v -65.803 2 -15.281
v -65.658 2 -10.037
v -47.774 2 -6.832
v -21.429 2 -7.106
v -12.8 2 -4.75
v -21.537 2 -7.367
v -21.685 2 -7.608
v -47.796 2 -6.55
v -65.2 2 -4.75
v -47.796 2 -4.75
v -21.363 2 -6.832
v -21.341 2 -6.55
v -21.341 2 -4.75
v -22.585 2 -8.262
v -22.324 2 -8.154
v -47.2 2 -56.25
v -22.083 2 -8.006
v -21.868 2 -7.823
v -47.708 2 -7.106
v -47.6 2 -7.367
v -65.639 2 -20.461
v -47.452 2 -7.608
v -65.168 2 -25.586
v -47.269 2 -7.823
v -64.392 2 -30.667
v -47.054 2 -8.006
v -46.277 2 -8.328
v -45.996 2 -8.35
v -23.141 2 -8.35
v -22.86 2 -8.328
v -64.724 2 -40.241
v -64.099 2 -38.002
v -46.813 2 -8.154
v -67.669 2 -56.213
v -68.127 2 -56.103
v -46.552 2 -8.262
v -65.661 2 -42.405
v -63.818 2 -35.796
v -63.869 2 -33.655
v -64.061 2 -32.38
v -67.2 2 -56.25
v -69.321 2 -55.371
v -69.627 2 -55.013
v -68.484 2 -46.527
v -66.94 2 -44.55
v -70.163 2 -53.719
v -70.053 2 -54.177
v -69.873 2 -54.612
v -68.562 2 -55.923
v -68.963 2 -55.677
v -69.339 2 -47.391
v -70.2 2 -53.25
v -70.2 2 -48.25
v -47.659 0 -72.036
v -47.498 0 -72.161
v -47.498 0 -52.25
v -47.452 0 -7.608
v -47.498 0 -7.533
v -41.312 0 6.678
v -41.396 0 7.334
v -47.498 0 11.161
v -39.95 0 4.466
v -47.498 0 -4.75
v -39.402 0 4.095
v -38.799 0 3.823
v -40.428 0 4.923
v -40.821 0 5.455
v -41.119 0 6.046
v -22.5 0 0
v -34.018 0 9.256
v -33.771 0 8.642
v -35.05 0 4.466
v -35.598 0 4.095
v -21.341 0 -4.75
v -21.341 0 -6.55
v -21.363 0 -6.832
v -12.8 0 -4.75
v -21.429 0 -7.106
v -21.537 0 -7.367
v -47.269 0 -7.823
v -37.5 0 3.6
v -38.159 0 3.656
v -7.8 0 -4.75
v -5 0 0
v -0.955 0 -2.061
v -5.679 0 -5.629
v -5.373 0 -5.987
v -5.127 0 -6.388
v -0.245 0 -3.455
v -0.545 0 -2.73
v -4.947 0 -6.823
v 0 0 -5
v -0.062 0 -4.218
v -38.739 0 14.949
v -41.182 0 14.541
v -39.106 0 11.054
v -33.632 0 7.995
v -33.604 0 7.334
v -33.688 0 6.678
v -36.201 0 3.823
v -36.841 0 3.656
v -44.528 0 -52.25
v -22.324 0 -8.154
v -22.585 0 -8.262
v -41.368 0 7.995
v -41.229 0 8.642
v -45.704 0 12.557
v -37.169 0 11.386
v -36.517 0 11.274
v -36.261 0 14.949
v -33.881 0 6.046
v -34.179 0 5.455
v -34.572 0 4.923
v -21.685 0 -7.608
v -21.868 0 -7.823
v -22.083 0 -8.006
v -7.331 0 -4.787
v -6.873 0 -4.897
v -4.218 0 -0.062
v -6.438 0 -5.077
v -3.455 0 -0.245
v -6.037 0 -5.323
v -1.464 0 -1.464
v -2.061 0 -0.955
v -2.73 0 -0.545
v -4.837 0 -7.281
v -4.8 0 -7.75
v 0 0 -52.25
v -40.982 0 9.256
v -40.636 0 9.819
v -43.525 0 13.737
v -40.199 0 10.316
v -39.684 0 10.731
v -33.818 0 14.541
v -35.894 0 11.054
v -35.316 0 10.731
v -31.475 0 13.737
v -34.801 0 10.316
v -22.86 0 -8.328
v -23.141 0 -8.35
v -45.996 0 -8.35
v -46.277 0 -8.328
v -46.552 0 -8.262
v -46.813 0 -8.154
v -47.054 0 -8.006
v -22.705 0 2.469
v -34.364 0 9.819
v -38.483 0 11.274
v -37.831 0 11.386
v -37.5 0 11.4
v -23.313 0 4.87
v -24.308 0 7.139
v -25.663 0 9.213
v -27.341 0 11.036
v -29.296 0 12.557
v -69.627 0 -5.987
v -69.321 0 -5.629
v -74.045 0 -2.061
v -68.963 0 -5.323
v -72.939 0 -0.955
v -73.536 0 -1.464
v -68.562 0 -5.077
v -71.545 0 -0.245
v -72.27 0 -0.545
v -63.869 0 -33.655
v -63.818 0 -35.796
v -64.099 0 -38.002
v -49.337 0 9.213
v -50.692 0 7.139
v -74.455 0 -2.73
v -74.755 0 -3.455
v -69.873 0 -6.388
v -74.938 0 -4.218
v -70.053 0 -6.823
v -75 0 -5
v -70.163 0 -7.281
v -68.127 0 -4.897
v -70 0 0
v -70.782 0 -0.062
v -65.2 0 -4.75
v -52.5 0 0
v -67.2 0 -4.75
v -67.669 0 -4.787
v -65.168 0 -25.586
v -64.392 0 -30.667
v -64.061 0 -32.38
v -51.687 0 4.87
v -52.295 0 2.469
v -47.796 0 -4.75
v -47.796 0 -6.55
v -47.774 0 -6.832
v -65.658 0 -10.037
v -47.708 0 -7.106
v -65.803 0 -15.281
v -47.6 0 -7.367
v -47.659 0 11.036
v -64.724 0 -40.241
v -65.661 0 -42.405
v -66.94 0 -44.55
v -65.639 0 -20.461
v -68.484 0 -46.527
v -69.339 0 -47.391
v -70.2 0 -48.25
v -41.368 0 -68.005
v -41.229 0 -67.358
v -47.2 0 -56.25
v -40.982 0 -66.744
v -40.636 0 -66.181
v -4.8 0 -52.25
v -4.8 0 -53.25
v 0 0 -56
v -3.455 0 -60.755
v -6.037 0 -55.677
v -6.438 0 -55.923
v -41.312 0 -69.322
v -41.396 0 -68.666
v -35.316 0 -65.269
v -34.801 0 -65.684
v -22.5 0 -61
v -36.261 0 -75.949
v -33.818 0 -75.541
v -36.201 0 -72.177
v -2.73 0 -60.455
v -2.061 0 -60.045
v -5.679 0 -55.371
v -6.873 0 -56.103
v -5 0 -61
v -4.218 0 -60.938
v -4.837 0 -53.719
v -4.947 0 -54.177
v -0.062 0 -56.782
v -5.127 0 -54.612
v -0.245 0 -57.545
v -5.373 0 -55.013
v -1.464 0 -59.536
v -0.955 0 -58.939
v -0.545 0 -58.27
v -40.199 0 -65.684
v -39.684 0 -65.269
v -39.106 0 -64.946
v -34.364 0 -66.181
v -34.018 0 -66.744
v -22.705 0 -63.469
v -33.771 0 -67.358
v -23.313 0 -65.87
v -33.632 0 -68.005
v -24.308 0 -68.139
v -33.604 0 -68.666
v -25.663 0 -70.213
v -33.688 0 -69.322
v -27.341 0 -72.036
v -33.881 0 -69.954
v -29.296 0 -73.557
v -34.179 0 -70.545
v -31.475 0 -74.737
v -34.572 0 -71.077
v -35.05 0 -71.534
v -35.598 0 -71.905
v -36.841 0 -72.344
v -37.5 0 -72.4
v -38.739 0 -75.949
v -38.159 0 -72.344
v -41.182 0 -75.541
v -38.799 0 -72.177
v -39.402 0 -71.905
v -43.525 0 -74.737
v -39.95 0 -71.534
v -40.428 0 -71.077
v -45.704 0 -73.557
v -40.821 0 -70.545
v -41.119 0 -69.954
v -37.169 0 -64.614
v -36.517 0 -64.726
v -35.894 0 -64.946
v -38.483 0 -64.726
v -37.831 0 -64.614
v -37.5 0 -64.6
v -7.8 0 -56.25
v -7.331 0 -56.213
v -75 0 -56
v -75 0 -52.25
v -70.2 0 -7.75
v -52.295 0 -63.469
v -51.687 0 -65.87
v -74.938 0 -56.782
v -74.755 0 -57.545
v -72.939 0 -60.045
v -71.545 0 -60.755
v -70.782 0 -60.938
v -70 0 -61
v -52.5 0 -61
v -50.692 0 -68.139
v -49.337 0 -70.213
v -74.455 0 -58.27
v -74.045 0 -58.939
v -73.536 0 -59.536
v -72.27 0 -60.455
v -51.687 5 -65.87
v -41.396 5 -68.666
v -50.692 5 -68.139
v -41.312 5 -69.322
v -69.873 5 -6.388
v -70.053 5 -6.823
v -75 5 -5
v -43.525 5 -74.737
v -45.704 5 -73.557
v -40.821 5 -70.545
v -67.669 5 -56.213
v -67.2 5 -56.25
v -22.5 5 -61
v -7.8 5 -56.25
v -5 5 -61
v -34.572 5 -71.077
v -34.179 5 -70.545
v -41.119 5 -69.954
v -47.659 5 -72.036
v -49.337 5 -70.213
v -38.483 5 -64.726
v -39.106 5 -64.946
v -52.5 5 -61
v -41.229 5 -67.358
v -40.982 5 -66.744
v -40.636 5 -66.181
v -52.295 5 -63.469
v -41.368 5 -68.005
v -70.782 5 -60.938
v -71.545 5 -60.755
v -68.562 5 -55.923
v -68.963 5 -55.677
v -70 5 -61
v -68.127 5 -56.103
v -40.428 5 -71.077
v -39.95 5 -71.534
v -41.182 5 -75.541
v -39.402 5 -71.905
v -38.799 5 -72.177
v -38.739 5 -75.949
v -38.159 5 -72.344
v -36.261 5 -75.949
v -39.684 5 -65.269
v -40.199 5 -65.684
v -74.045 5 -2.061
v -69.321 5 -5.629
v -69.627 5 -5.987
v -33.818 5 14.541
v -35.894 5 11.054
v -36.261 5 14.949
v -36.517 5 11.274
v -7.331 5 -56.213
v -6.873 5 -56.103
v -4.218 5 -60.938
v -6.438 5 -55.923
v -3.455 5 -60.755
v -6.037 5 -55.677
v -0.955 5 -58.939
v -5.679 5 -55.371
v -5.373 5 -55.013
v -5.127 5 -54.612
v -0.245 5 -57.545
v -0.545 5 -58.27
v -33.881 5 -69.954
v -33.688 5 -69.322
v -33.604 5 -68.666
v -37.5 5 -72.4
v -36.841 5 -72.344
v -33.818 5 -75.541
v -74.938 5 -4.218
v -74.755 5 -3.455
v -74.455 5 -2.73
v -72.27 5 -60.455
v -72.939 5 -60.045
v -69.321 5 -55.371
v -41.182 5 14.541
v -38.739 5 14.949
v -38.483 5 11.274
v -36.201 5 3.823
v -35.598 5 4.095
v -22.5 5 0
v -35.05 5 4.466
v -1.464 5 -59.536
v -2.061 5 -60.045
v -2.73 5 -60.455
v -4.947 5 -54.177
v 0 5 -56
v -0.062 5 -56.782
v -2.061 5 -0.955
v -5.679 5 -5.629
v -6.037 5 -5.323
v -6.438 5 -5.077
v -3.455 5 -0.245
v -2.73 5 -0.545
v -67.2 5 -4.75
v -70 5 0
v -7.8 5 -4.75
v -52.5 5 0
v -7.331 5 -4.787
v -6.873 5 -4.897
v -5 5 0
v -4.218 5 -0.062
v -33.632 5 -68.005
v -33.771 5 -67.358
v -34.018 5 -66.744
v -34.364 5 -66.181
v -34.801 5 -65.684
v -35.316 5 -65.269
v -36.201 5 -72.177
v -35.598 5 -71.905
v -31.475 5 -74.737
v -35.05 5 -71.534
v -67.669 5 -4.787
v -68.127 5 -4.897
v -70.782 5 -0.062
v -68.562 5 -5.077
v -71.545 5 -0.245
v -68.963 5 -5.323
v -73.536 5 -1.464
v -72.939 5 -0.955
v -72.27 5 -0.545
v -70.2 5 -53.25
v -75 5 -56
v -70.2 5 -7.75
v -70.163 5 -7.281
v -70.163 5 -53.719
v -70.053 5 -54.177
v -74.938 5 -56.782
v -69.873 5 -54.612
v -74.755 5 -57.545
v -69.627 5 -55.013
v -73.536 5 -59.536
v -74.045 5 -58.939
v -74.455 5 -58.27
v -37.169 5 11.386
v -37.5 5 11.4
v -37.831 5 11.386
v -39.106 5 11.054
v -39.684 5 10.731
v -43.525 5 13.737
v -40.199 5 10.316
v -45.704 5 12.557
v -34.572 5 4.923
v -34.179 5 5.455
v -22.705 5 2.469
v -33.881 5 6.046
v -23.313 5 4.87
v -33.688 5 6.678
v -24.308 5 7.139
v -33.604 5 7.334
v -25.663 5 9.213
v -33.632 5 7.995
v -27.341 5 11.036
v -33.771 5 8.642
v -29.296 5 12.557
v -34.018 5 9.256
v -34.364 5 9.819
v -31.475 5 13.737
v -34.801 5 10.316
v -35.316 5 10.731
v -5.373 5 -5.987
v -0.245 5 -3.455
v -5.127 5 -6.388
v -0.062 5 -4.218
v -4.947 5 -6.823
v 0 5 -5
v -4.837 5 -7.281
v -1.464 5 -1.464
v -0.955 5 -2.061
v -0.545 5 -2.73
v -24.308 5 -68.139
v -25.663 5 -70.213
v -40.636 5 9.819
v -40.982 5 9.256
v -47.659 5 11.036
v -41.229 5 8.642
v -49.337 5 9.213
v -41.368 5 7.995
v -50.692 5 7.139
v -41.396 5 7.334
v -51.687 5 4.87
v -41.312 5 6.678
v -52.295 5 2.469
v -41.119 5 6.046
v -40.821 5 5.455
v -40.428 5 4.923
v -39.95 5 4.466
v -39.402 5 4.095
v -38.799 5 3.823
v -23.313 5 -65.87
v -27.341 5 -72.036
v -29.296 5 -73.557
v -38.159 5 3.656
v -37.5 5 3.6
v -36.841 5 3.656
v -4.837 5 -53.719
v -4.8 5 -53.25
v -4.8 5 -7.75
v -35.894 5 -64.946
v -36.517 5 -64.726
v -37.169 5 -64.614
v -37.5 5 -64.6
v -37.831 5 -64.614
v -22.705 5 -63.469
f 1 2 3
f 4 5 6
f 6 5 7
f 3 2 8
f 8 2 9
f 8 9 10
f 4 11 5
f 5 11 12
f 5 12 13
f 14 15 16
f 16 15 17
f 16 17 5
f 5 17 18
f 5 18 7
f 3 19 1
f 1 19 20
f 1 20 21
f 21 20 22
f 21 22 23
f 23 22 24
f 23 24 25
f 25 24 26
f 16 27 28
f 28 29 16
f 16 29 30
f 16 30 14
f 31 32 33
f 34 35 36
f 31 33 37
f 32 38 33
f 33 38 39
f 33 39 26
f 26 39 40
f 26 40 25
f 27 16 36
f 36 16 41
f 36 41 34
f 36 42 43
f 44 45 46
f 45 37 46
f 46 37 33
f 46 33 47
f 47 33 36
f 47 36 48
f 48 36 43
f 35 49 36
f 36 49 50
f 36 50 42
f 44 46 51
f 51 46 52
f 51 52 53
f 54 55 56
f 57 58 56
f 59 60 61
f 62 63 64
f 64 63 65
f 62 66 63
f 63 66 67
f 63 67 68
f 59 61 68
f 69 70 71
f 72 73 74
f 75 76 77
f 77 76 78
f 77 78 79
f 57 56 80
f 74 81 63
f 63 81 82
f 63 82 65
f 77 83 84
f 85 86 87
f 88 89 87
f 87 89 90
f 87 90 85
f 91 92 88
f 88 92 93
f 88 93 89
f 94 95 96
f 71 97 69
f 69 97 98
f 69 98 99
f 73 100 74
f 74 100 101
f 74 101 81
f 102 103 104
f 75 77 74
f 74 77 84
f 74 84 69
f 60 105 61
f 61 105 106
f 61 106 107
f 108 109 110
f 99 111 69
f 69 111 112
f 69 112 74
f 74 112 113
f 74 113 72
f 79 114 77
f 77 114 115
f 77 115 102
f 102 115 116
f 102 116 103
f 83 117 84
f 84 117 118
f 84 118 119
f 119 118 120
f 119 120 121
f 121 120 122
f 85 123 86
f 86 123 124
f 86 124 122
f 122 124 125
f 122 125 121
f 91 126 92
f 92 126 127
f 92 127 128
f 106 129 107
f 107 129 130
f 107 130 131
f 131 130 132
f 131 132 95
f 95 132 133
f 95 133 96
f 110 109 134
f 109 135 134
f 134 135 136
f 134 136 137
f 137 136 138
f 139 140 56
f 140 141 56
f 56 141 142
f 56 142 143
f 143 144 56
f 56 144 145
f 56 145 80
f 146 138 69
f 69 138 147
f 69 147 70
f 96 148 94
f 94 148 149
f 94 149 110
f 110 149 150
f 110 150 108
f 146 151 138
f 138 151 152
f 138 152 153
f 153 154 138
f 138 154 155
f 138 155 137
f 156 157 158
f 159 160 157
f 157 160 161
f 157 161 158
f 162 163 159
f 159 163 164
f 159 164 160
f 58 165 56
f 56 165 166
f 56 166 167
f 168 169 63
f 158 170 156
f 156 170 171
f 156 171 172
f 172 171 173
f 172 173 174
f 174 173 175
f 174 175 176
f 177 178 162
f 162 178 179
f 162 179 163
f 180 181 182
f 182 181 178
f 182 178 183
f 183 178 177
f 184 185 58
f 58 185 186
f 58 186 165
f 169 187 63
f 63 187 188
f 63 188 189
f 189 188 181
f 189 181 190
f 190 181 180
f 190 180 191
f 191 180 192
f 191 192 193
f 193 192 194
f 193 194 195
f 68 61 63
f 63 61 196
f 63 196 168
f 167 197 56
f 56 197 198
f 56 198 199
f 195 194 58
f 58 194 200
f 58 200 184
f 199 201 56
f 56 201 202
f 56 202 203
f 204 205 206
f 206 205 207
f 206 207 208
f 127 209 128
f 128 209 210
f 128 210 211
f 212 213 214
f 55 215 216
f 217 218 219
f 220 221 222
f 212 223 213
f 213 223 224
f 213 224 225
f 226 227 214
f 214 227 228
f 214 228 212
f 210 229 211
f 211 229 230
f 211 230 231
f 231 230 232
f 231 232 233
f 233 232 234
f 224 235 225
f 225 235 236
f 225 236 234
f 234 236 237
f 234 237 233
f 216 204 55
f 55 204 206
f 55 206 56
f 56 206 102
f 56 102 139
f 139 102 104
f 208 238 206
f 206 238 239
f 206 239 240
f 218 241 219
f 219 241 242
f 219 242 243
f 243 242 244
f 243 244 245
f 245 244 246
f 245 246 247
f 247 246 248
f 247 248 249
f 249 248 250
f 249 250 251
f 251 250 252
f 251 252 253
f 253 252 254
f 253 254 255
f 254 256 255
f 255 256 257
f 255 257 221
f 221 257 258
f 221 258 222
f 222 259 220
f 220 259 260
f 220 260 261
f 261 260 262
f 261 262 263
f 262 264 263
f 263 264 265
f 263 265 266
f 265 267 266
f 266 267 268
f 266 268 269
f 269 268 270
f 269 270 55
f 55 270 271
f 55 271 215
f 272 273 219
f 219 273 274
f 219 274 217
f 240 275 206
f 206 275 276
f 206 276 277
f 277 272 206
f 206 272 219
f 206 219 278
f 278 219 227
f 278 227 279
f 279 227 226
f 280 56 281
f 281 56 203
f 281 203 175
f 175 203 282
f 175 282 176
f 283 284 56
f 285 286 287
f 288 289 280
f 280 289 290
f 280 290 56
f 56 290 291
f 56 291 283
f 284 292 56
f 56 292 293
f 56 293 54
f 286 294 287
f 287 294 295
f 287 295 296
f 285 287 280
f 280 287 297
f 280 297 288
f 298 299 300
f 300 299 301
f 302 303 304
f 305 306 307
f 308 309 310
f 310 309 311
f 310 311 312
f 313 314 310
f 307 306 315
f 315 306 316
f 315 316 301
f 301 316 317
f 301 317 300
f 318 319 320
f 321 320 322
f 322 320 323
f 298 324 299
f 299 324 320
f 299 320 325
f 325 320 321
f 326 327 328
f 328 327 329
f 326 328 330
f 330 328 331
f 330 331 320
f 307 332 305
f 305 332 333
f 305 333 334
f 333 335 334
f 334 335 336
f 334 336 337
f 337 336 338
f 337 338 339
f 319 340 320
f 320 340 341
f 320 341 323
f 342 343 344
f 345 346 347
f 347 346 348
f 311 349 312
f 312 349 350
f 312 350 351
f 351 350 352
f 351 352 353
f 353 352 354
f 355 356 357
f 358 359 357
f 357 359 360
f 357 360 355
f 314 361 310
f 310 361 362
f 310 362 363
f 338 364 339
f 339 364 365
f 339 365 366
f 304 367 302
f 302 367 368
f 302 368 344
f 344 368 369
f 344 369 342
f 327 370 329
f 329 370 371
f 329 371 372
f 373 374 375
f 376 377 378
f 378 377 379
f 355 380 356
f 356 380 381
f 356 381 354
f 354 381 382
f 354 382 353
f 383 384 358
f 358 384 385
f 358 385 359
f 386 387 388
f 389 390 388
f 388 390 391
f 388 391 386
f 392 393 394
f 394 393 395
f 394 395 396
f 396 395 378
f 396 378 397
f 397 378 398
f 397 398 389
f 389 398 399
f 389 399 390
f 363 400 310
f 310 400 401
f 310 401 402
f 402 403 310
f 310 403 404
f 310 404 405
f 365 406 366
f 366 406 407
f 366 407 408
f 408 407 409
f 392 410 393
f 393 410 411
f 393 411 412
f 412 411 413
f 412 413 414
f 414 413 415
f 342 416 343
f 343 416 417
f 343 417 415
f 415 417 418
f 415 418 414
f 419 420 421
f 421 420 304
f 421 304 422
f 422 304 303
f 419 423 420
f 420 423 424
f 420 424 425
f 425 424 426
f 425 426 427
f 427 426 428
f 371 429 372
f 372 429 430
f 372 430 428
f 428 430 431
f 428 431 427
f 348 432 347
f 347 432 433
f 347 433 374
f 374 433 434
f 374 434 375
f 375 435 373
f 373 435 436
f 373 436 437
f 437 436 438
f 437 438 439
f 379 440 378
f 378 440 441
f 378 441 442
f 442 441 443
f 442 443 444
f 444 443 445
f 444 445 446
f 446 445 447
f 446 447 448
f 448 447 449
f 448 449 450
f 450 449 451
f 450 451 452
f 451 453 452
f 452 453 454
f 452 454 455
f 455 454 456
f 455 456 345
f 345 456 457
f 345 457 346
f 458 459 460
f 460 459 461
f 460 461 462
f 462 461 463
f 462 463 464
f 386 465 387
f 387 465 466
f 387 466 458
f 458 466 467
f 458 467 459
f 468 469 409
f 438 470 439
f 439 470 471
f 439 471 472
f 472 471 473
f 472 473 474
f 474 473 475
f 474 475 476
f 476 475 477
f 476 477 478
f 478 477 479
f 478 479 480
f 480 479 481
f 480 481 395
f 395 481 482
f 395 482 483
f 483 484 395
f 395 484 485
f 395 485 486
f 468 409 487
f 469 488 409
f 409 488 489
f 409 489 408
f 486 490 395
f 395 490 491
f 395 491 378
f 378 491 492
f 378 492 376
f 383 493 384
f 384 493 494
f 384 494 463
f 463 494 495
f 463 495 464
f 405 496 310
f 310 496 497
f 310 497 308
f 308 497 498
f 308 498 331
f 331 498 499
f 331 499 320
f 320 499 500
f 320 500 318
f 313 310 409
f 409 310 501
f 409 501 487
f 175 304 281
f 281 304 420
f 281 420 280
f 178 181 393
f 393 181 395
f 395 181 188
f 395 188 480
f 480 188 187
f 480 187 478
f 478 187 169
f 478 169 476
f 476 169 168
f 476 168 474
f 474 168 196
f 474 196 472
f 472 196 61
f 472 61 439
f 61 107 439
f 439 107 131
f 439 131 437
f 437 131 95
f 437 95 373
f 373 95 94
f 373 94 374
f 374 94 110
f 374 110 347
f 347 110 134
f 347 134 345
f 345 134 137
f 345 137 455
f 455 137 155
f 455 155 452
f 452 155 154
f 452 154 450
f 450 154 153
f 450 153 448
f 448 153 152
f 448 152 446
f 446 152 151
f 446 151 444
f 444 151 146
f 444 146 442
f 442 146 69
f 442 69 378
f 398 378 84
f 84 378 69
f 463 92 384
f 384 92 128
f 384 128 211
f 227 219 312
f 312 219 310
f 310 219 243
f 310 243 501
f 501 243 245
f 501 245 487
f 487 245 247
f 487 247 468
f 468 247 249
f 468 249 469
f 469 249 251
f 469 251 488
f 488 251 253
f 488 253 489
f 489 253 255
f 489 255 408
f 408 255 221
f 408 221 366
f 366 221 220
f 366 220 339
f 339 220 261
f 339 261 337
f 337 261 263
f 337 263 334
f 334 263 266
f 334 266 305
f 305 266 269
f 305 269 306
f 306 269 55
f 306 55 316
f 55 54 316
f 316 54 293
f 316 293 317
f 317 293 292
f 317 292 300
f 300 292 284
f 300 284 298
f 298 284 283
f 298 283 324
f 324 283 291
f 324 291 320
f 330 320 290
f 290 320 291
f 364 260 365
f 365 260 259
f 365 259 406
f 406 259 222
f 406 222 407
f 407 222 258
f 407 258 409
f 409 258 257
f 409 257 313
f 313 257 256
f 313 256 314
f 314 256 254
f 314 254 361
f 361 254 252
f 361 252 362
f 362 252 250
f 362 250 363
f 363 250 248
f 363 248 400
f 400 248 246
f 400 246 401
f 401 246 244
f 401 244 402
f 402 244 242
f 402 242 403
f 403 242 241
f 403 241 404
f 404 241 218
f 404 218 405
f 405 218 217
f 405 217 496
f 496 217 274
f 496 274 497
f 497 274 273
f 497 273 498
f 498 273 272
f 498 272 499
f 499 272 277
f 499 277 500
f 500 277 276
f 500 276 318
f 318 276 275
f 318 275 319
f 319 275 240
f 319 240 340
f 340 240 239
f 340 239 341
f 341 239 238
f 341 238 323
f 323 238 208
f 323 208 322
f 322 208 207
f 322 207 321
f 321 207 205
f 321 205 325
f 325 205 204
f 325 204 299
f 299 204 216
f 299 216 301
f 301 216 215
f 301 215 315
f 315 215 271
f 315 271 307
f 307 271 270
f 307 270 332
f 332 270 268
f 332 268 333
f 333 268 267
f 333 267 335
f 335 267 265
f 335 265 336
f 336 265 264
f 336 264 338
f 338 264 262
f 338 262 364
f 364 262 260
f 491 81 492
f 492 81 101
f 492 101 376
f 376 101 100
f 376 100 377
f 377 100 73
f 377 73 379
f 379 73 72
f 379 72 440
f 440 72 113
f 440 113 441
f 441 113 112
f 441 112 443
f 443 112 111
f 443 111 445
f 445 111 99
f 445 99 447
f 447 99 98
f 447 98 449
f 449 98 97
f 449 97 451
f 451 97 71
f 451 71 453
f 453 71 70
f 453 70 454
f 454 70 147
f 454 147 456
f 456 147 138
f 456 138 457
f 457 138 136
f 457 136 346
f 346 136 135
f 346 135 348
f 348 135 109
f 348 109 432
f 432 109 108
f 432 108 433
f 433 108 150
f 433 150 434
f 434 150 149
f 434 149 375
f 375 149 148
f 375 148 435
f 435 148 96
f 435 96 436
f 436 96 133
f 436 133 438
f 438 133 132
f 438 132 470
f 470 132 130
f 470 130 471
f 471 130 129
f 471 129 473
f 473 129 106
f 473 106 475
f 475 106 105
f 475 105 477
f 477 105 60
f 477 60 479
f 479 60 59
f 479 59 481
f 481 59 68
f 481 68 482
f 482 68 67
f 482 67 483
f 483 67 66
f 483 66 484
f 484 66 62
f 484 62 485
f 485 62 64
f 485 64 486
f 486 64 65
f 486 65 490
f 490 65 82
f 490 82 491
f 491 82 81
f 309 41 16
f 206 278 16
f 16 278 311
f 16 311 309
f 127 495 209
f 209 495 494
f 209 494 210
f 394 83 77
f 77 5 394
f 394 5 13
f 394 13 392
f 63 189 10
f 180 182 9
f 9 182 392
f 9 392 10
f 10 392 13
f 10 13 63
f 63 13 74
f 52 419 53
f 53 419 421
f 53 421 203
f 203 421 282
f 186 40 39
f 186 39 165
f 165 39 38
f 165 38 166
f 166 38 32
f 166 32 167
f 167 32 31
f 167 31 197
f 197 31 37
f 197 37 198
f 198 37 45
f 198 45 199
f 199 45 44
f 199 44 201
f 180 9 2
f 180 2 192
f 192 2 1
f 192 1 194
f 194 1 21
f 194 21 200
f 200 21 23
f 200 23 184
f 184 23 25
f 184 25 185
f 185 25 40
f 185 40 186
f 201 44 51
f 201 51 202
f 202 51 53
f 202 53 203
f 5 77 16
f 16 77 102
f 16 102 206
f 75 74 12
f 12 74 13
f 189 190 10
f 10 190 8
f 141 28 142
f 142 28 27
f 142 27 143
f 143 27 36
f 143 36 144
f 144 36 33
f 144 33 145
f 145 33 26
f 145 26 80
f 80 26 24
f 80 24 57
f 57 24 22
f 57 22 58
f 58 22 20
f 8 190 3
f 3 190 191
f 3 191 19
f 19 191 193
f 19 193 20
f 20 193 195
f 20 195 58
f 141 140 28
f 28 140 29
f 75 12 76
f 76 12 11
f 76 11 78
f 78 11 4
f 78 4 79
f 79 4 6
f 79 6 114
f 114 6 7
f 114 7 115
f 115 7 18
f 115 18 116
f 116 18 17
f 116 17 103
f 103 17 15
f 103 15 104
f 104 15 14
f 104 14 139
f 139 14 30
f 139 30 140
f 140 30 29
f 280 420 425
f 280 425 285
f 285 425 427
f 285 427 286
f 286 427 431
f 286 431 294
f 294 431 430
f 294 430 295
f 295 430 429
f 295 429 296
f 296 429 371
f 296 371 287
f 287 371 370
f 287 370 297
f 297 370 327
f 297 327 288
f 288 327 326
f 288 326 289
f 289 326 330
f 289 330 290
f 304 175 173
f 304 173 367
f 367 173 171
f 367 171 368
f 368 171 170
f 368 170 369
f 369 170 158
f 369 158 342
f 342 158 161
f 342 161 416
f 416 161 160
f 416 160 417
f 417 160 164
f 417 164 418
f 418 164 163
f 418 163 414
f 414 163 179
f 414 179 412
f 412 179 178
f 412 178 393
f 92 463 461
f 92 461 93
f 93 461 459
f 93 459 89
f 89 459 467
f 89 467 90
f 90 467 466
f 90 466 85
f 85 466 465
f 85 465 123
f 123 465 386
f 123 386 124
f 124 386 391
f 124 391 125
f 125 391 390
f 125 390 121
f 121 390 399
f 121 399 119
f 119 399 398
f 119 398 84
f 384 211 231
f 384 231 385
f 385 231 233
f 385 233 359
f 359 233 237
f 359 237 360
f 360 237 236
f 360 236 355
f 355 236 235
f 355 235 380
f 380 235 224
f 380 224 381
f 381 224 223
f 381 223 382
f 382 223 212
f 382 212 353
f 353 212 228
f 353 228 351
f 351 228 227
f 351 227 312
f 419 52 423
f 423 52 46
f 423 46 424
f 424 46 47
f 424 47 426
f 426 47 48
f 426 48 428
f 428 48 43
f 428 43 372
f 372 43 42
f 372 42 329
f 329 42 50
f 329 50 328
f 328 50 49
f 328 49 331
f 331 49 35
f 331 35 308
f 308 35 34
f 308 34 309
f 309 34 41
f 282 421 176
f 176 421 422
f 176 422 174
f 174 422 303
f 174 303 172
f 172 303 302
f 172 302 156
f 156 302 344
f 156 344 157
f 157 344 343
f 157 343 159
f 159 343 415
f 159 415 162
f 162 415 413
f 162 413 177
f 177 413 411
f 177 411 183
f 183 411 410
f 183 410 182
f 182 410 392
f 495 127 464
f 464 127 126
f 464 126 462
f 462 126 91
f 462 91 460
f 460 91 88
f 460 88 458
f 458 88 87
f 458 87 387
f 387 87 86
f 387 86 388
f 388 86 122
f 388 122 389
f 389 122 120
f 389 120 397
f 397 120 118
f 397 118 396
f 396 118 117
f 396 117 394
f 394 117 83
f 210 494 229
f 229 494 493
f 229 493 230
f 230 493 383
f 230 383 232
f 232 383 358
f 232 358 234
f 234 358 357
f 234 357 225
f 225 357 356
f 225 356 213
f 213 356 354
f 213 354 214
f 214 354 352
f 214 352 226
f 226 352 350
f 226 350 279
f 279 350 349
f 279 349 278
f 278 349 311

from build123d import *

# Parameters (mm, degrees)
SKETCH1_R           = 3.9
BOSS_EXTRUDE1_DEPTH = 5
CUT_EXTRUDE1_DEPTH  = 3
CUT_EXTRUDE2_DEPTH  = 3
FILLET1_R           = 5
FILLET2_R           = 3


with BuildPart() as part:
    # Sketch1 → Boss-Extrude1 (new body)
    with BuildSketch(Plane(origin=(0, 0, 0), x_dir=(1, 0, 0), z_dir=(0, 1, 0))):
        with BuildLine():
            ThreePointArc((-22.5, 61), (-37.5, 76), (-52.5, 61))
            Line((-52.5, 61), (-75, 61))
            Line((-75, 61), (-75, 0))
            Line((-75, 0), (-52.5, 0))
            ThreePointArc((-52.5, 0), (-37.5, -15), (-22.5, 0))
            Line((-22.5, 0), (0, 0))
            Line((0, 0), (0, 61))
            Line((0, 61), (-22.5, 61))
        make_face()
        with Locations((-37.5, 68.5)):
            Circle(SKETCH1_R, mode=Mode.SUBTRACT)
        with Locations((-37.5, -7.5)):
            Circle(SKETCH1_R, mode=Mode.SUBTRACT)
    extrude(amount=BOSS_EXTRUDE1_DEPTH)

    # Sketch2 → Cut-Extrude1 (cut)
    with BuildSketch(Plane(origin=(0, 5, 0), x_dir=(1, 0, 0), z_dir=(0, 1, 0))):
        Polygon((-5.840163934, 4.75), (-69.159836066, 56.25), (-70.2, 56.25), (-70.2, 4.75), align=None)
        Polygon((-4.8, 56.25), (-69.159836066, 56.25), (-5.840163934, 4.75), (-4.8, 4.75), align=None)
    extrude(amount=-CUT_EXTRUDE1_DEPTH, mode=Mode.SUBTRACT)

    # Sketch3 → Cut-Extrude2 (cut, through all)
    with BuildSketch(Plane(origin=(0, 2, 0), x_dir=(1, 0, 0), z_dir=(0, 1, 0))):
        with BuildLine():
            add(Edge.make_bspline(
                [(-70.2, 48.25), (-69.3360202, 47.393408535), (-68.484165296, 46.526885218)],
                knots=[0, 0, 0, 0.044512792, 0.044512792, 0.044512792], degree=2))
            Line((-70.2, 48.25), (-70.2, 4.75))
            Line((-70.2, 4.75), (-65.2, 4.75))
            add(Edge.make_bspline(
                [(-65.2, 4.75), (-66.281505433, 14.095378491), (-65.909161294, 23.268767529), (-64.082967584, 32.270167116)],
                knots=[0, 0, 0, 0, 0.780709758, 0.780709758, 0.780709758, 0.780709758], degree=3))
            add(Edge.make_bspline(
                [(-64.082967584, 32.270167116), (-64.075541276, 32.30677176), (-64.068090925, 32.343373559), (-64.060616532, 32.379972514)],
                knots=[0.780709758, 0.780709758, 0.780709758, 0.780709758, 0.783884554, 0.783884554, 0.783884554, 0.783884554], degree=3))
            add(Edge.make_bspline(
                [(-68.484165296, 46.526885218), (-65.083389168, 42.682237292), (-63.043469729, 37.485478449), (-64.060616531, 32.379972514)],
                knots=[0.136165996, 0.136165996, 0.136165996, 0.136165996, 0.993850371, 0.993850371, 0.993850371, 0.993850371], degree=3))
        make_face()
        Polygon((-12.8, 56.25), (-47.2, 56.25), (-12.8, 4.75), (-4.8, 4.75), (-4.8, 56.25), align=None)
        with BuildLine():
            Line((-23.141162666, 4.75), (-21.341162666, 4.75))
            Line((-21.341162666, 4.75), (-21.341162666, 6.55))
            ThreePointArc((-21.341162666, 6.55), (-21.86837046, 7.822792206), (-23.141162666, 8.35))
            Line((-23.141162666, 8.35), (-45.995816889, 8.35))
            ThreePointArc((-45.995816889, 8.35), (-47.268609095, 7.822792206), (-47.795816889, 6.55))
            Line((-47.795816889, 6.55), (-47.795816889, 4.75))
            Line((-47.795816889, 4.75), (-45.995816889, 4.75))
            Line((-45.995816889, 4.75), (-23.141162666, 4.75))
        make_face()
    extrude(amount=-CUT_EXTRUDE2_DEPTH, mode=Mode.SUBTRACT)

    # Fillet1
    fillet1_edges = [part.edges().sort_by_distance(p)[0] for p in [
        (-75, 2.5, -61),
        (0, 2.5, -61),
        (0, 2.5, 0),
        (-75, 2.5, 0),
    ]]
    fillet(fillet1_edges, radius=FILLET1_R)

    # Fillet2
    fillet2_edges = [part.edges().sort_by_distance(p)[0] for p in [
        (-70.2, 3.5, -56.25),
        (-4.8, 2.5, -56.25),
        (-4.8, 2.5, -4.75),
        (-70.2, 2.5, -4.75),
    ]]
    fillet(fillet2_edges, radius=FILLET2_R)


solid = part.part
